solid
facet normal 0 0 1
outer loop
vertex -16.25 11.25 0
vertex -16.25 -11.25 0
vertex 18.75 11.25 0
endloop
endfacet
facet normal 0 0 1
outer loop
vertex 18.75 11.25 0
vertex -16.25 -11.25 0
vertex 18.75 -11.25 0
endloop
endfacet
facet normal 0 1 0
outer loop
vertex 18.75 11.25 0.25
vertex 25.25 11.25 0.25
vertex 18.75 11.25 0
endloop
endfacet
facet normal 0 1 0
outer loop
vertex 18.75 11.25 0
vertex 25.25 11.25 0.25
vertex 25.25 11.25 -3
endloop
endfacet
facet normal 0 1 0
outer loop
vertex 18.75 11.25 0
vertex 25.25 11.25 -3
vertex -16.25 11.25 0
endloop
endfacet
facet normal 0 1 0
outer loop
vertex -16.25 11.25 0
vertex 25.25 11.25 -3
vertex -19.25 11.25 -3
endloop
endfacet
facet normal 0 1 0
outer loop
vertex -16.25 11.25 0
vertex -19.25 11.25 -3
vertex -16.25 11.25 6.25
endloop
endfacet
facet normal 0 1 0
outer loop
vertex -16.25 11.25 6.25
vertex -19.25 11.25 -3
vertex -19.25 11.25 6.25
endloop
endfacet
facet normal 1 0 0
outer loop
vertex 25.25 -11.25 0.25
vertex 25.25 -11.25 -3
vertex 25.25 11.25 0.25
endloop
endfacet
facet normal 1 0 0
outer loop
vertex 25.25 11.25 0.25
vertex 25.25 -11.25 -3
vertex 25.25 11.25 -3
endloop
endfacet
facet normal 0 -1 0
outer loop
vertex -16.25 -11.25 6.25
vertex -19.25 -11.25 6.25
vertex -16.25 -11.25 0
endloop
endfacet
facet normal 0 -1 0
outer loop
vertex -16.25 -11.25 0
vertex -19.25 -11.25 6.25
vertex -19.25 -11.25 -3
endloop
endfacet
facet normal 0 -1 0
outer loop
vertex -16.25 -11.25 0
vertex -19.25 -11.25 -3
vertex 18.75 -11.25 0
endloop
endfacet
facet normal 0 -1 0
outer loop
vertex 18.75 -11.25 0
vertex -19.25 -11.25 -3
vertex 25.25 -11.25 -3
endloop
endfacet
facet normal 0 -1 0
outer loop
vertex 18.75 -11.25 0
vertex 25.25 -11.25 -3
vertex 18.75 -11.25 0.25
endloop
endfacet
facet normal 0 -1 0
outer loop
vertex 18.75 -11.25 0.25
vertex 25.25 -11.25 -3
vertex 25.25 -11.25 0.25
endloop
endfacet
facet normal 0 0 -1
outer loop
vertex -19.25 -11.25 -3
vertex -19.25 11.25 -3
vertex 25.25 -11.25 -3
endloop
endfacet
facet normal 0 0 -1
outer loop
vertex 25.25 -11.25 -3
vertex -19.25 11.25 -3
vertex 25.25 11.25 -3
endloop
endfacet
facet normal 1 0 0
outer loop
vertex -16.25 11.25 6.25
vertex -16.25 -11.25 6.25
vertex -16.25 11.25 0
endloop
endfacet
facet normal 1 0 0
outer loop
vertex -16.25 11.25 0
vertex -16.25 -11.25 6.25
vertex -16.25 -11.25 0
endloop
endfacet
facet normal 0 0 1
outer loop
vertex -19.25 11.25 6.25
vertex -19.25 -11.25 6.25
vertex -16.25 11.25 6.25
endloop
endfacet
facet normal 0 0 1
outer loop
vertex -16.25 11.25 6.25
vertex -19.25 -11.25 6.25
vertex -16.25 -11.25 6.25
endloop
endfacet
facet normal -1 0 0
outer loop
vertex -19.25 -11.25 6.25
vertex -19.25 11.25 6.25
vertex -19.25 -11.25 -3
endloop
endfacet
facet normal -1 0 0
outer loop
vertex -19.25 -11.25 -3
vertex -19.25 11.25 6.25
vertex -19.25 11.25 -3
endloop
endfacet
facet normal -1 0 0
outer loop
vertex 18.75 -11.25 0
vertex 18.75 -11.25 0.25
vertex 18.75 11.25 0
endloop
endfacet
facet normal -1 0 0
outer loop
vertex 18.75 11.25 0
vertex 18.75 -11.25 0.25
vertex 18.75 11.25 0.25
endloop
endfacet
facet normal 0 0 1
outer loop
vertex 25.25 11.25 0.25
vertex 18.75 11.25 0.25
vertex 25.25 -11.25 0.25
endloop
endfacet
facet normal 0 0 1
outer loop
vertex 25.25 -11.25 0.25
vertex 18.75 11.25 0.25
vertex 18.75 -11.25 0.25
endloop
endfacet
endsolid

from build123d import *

# Parameters (mm, degrees)
ESBO_O1_W                = 41.5
ESBO_O1_H                = 22.5
RESSALTO_EXTRUS_O1_DEPTH = 3
ESBO_O2_W                = 9.25
ESBO_O2_H                = 22.5
RESSALTO_EXTRUS_O2_DEPTH = 3
ESBO_O3_W                = 6.5
ESBO_O3_H                = 22.5
RESSALTO_EXTRUS_O3_DEPTH = 3.25


with BuildPart() as part:
    # Esboço1 → Ressalto-extrusão1 (new body)
    with BuildSketch(Plane.XY):
        with Locations((4.5, 0)):
            Rectangle(ESBO_O1_W, ESBO_O1_H)
    extrude(amount=-RESSALTO_EXTRUS_O1_DEPTH)

    # Esboço2 → Ressalto-extrusão2 (add)
    with BuildSketch(Plane.ZY.offset(16.25)):
        with Locations((1.625, 0)):
            Rectangle(ESBO_O2_W, ESBO_O2_H)
    extrude(amount=RESSALTO_EXTRUS_O2_DEPTH)

    # Esboço3 → Ressalto-extrusão3 (add)
    with BuildSketch(Plane.XY.offset(-3)):
        with Locations((22, 0)):
            Rectangle(ESBO_O3_W, ESBO_O3_H)
    extrude(amount=RESSALTO_EXTRUS_O3_DEPTH)


solid = part.part
